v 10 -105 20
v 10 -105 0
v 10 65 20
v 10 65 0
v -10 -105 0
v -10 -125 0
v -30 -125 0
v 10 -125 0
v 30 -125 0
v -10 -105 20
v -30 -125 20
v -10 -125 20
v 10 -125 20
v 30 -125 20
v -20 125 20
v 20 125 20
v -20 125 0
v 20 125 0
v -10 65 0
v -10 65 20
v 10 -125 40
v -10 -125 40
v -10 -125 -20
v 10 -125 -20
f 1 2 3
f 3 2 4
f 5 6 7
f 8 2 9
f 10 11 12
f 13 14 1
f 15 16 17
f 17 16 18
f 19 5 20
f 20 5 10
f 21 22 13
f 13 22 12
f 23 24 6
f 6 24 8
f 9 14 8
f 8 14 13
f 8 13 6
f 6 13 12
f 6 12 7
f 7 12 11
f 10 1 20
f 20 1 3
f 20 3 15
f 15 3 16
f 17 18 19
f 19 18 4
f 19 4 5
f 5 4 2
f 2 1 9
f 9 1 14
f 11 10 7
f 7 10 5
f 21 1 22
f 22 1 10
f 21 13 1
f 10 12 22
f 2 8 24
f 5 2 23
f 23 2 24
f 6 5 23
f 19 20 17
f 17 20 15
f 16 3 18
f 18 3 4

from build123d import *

# Parameters (mm, degrees)
SKETCH1_W           = 20
SKETCH1_H           = 250
BOSS_EXTRUDE1_DEPTH = 20
BOSS_EXTRUDE2_DEPTH = 20
BOSS_EXTRUDE3_DEPTH = 20
BOSS_EXTRUDE4_DEPTH = 20


with BuildPart() as part:
    # Sketch1 → Boss-Extrude1 (new body)
    with BuildSketch(Plane.XY):
        Rectangle(SKETCH1_W, SKETCH1_H)
    extrude(amount=BOSS_EXTRUDE1_DEPTH)

    # Sketch2 → Boss-Extrude2 (add)
    with BuildSketch(Plane.XY.offset(20)):
        Polygon((10, -125), (10, -105), (30, -125), align=None)
    boss_extrude2 = extrude(amount=-BOSS_EXTRUDE2_DEPTH)

    # Mirror2: Boss-Extrude2 across plane
    add(boss_extrude2.mirror(Plane(origin=(0, 0, 0), x_dir=(0, 0, 1), z_dir=(1, 0, 0))))

    # Sketch3 → Boss-Extrude3 (add)
    with BuildSketch(Plane(origin=(10, 0, 0), x_dir=(0, 0, -1), z_dir=(1, 0, 0))):
        Polygon((-20, -105), (-20, -125), (-40, -125), align=None)
    boss_extrude3 = extrude(amount=-BOSS_EXTRUDE3_DEPTH)

    # Mirror3: Boss-Extrude3 across plane
    add(boss_extrude3.mirror(Plane(origin=(0, 0, 10), x_dir=(1, 0, 0), z_dir=(0, 0, -1))))

    # Sketch4 → Boss-Extrude4 (add)
    with BuildSketch(Plane.XY.offset(20)):
        Polygon((-10, 125), (-20, 125), (-10, 65), align=None)
    boss_extrude4 = extrude(amount=-BOSS_EXTRUDE4_DEPTH)

    # Mirror4: Boss-Extrude4 across plane
    add(boss_extrude4.mirror(Plane(origin=(0, 0, 0), x_dir=(0, 0, 1), z_dir=(1, 0, 0))))


solid = part.part
